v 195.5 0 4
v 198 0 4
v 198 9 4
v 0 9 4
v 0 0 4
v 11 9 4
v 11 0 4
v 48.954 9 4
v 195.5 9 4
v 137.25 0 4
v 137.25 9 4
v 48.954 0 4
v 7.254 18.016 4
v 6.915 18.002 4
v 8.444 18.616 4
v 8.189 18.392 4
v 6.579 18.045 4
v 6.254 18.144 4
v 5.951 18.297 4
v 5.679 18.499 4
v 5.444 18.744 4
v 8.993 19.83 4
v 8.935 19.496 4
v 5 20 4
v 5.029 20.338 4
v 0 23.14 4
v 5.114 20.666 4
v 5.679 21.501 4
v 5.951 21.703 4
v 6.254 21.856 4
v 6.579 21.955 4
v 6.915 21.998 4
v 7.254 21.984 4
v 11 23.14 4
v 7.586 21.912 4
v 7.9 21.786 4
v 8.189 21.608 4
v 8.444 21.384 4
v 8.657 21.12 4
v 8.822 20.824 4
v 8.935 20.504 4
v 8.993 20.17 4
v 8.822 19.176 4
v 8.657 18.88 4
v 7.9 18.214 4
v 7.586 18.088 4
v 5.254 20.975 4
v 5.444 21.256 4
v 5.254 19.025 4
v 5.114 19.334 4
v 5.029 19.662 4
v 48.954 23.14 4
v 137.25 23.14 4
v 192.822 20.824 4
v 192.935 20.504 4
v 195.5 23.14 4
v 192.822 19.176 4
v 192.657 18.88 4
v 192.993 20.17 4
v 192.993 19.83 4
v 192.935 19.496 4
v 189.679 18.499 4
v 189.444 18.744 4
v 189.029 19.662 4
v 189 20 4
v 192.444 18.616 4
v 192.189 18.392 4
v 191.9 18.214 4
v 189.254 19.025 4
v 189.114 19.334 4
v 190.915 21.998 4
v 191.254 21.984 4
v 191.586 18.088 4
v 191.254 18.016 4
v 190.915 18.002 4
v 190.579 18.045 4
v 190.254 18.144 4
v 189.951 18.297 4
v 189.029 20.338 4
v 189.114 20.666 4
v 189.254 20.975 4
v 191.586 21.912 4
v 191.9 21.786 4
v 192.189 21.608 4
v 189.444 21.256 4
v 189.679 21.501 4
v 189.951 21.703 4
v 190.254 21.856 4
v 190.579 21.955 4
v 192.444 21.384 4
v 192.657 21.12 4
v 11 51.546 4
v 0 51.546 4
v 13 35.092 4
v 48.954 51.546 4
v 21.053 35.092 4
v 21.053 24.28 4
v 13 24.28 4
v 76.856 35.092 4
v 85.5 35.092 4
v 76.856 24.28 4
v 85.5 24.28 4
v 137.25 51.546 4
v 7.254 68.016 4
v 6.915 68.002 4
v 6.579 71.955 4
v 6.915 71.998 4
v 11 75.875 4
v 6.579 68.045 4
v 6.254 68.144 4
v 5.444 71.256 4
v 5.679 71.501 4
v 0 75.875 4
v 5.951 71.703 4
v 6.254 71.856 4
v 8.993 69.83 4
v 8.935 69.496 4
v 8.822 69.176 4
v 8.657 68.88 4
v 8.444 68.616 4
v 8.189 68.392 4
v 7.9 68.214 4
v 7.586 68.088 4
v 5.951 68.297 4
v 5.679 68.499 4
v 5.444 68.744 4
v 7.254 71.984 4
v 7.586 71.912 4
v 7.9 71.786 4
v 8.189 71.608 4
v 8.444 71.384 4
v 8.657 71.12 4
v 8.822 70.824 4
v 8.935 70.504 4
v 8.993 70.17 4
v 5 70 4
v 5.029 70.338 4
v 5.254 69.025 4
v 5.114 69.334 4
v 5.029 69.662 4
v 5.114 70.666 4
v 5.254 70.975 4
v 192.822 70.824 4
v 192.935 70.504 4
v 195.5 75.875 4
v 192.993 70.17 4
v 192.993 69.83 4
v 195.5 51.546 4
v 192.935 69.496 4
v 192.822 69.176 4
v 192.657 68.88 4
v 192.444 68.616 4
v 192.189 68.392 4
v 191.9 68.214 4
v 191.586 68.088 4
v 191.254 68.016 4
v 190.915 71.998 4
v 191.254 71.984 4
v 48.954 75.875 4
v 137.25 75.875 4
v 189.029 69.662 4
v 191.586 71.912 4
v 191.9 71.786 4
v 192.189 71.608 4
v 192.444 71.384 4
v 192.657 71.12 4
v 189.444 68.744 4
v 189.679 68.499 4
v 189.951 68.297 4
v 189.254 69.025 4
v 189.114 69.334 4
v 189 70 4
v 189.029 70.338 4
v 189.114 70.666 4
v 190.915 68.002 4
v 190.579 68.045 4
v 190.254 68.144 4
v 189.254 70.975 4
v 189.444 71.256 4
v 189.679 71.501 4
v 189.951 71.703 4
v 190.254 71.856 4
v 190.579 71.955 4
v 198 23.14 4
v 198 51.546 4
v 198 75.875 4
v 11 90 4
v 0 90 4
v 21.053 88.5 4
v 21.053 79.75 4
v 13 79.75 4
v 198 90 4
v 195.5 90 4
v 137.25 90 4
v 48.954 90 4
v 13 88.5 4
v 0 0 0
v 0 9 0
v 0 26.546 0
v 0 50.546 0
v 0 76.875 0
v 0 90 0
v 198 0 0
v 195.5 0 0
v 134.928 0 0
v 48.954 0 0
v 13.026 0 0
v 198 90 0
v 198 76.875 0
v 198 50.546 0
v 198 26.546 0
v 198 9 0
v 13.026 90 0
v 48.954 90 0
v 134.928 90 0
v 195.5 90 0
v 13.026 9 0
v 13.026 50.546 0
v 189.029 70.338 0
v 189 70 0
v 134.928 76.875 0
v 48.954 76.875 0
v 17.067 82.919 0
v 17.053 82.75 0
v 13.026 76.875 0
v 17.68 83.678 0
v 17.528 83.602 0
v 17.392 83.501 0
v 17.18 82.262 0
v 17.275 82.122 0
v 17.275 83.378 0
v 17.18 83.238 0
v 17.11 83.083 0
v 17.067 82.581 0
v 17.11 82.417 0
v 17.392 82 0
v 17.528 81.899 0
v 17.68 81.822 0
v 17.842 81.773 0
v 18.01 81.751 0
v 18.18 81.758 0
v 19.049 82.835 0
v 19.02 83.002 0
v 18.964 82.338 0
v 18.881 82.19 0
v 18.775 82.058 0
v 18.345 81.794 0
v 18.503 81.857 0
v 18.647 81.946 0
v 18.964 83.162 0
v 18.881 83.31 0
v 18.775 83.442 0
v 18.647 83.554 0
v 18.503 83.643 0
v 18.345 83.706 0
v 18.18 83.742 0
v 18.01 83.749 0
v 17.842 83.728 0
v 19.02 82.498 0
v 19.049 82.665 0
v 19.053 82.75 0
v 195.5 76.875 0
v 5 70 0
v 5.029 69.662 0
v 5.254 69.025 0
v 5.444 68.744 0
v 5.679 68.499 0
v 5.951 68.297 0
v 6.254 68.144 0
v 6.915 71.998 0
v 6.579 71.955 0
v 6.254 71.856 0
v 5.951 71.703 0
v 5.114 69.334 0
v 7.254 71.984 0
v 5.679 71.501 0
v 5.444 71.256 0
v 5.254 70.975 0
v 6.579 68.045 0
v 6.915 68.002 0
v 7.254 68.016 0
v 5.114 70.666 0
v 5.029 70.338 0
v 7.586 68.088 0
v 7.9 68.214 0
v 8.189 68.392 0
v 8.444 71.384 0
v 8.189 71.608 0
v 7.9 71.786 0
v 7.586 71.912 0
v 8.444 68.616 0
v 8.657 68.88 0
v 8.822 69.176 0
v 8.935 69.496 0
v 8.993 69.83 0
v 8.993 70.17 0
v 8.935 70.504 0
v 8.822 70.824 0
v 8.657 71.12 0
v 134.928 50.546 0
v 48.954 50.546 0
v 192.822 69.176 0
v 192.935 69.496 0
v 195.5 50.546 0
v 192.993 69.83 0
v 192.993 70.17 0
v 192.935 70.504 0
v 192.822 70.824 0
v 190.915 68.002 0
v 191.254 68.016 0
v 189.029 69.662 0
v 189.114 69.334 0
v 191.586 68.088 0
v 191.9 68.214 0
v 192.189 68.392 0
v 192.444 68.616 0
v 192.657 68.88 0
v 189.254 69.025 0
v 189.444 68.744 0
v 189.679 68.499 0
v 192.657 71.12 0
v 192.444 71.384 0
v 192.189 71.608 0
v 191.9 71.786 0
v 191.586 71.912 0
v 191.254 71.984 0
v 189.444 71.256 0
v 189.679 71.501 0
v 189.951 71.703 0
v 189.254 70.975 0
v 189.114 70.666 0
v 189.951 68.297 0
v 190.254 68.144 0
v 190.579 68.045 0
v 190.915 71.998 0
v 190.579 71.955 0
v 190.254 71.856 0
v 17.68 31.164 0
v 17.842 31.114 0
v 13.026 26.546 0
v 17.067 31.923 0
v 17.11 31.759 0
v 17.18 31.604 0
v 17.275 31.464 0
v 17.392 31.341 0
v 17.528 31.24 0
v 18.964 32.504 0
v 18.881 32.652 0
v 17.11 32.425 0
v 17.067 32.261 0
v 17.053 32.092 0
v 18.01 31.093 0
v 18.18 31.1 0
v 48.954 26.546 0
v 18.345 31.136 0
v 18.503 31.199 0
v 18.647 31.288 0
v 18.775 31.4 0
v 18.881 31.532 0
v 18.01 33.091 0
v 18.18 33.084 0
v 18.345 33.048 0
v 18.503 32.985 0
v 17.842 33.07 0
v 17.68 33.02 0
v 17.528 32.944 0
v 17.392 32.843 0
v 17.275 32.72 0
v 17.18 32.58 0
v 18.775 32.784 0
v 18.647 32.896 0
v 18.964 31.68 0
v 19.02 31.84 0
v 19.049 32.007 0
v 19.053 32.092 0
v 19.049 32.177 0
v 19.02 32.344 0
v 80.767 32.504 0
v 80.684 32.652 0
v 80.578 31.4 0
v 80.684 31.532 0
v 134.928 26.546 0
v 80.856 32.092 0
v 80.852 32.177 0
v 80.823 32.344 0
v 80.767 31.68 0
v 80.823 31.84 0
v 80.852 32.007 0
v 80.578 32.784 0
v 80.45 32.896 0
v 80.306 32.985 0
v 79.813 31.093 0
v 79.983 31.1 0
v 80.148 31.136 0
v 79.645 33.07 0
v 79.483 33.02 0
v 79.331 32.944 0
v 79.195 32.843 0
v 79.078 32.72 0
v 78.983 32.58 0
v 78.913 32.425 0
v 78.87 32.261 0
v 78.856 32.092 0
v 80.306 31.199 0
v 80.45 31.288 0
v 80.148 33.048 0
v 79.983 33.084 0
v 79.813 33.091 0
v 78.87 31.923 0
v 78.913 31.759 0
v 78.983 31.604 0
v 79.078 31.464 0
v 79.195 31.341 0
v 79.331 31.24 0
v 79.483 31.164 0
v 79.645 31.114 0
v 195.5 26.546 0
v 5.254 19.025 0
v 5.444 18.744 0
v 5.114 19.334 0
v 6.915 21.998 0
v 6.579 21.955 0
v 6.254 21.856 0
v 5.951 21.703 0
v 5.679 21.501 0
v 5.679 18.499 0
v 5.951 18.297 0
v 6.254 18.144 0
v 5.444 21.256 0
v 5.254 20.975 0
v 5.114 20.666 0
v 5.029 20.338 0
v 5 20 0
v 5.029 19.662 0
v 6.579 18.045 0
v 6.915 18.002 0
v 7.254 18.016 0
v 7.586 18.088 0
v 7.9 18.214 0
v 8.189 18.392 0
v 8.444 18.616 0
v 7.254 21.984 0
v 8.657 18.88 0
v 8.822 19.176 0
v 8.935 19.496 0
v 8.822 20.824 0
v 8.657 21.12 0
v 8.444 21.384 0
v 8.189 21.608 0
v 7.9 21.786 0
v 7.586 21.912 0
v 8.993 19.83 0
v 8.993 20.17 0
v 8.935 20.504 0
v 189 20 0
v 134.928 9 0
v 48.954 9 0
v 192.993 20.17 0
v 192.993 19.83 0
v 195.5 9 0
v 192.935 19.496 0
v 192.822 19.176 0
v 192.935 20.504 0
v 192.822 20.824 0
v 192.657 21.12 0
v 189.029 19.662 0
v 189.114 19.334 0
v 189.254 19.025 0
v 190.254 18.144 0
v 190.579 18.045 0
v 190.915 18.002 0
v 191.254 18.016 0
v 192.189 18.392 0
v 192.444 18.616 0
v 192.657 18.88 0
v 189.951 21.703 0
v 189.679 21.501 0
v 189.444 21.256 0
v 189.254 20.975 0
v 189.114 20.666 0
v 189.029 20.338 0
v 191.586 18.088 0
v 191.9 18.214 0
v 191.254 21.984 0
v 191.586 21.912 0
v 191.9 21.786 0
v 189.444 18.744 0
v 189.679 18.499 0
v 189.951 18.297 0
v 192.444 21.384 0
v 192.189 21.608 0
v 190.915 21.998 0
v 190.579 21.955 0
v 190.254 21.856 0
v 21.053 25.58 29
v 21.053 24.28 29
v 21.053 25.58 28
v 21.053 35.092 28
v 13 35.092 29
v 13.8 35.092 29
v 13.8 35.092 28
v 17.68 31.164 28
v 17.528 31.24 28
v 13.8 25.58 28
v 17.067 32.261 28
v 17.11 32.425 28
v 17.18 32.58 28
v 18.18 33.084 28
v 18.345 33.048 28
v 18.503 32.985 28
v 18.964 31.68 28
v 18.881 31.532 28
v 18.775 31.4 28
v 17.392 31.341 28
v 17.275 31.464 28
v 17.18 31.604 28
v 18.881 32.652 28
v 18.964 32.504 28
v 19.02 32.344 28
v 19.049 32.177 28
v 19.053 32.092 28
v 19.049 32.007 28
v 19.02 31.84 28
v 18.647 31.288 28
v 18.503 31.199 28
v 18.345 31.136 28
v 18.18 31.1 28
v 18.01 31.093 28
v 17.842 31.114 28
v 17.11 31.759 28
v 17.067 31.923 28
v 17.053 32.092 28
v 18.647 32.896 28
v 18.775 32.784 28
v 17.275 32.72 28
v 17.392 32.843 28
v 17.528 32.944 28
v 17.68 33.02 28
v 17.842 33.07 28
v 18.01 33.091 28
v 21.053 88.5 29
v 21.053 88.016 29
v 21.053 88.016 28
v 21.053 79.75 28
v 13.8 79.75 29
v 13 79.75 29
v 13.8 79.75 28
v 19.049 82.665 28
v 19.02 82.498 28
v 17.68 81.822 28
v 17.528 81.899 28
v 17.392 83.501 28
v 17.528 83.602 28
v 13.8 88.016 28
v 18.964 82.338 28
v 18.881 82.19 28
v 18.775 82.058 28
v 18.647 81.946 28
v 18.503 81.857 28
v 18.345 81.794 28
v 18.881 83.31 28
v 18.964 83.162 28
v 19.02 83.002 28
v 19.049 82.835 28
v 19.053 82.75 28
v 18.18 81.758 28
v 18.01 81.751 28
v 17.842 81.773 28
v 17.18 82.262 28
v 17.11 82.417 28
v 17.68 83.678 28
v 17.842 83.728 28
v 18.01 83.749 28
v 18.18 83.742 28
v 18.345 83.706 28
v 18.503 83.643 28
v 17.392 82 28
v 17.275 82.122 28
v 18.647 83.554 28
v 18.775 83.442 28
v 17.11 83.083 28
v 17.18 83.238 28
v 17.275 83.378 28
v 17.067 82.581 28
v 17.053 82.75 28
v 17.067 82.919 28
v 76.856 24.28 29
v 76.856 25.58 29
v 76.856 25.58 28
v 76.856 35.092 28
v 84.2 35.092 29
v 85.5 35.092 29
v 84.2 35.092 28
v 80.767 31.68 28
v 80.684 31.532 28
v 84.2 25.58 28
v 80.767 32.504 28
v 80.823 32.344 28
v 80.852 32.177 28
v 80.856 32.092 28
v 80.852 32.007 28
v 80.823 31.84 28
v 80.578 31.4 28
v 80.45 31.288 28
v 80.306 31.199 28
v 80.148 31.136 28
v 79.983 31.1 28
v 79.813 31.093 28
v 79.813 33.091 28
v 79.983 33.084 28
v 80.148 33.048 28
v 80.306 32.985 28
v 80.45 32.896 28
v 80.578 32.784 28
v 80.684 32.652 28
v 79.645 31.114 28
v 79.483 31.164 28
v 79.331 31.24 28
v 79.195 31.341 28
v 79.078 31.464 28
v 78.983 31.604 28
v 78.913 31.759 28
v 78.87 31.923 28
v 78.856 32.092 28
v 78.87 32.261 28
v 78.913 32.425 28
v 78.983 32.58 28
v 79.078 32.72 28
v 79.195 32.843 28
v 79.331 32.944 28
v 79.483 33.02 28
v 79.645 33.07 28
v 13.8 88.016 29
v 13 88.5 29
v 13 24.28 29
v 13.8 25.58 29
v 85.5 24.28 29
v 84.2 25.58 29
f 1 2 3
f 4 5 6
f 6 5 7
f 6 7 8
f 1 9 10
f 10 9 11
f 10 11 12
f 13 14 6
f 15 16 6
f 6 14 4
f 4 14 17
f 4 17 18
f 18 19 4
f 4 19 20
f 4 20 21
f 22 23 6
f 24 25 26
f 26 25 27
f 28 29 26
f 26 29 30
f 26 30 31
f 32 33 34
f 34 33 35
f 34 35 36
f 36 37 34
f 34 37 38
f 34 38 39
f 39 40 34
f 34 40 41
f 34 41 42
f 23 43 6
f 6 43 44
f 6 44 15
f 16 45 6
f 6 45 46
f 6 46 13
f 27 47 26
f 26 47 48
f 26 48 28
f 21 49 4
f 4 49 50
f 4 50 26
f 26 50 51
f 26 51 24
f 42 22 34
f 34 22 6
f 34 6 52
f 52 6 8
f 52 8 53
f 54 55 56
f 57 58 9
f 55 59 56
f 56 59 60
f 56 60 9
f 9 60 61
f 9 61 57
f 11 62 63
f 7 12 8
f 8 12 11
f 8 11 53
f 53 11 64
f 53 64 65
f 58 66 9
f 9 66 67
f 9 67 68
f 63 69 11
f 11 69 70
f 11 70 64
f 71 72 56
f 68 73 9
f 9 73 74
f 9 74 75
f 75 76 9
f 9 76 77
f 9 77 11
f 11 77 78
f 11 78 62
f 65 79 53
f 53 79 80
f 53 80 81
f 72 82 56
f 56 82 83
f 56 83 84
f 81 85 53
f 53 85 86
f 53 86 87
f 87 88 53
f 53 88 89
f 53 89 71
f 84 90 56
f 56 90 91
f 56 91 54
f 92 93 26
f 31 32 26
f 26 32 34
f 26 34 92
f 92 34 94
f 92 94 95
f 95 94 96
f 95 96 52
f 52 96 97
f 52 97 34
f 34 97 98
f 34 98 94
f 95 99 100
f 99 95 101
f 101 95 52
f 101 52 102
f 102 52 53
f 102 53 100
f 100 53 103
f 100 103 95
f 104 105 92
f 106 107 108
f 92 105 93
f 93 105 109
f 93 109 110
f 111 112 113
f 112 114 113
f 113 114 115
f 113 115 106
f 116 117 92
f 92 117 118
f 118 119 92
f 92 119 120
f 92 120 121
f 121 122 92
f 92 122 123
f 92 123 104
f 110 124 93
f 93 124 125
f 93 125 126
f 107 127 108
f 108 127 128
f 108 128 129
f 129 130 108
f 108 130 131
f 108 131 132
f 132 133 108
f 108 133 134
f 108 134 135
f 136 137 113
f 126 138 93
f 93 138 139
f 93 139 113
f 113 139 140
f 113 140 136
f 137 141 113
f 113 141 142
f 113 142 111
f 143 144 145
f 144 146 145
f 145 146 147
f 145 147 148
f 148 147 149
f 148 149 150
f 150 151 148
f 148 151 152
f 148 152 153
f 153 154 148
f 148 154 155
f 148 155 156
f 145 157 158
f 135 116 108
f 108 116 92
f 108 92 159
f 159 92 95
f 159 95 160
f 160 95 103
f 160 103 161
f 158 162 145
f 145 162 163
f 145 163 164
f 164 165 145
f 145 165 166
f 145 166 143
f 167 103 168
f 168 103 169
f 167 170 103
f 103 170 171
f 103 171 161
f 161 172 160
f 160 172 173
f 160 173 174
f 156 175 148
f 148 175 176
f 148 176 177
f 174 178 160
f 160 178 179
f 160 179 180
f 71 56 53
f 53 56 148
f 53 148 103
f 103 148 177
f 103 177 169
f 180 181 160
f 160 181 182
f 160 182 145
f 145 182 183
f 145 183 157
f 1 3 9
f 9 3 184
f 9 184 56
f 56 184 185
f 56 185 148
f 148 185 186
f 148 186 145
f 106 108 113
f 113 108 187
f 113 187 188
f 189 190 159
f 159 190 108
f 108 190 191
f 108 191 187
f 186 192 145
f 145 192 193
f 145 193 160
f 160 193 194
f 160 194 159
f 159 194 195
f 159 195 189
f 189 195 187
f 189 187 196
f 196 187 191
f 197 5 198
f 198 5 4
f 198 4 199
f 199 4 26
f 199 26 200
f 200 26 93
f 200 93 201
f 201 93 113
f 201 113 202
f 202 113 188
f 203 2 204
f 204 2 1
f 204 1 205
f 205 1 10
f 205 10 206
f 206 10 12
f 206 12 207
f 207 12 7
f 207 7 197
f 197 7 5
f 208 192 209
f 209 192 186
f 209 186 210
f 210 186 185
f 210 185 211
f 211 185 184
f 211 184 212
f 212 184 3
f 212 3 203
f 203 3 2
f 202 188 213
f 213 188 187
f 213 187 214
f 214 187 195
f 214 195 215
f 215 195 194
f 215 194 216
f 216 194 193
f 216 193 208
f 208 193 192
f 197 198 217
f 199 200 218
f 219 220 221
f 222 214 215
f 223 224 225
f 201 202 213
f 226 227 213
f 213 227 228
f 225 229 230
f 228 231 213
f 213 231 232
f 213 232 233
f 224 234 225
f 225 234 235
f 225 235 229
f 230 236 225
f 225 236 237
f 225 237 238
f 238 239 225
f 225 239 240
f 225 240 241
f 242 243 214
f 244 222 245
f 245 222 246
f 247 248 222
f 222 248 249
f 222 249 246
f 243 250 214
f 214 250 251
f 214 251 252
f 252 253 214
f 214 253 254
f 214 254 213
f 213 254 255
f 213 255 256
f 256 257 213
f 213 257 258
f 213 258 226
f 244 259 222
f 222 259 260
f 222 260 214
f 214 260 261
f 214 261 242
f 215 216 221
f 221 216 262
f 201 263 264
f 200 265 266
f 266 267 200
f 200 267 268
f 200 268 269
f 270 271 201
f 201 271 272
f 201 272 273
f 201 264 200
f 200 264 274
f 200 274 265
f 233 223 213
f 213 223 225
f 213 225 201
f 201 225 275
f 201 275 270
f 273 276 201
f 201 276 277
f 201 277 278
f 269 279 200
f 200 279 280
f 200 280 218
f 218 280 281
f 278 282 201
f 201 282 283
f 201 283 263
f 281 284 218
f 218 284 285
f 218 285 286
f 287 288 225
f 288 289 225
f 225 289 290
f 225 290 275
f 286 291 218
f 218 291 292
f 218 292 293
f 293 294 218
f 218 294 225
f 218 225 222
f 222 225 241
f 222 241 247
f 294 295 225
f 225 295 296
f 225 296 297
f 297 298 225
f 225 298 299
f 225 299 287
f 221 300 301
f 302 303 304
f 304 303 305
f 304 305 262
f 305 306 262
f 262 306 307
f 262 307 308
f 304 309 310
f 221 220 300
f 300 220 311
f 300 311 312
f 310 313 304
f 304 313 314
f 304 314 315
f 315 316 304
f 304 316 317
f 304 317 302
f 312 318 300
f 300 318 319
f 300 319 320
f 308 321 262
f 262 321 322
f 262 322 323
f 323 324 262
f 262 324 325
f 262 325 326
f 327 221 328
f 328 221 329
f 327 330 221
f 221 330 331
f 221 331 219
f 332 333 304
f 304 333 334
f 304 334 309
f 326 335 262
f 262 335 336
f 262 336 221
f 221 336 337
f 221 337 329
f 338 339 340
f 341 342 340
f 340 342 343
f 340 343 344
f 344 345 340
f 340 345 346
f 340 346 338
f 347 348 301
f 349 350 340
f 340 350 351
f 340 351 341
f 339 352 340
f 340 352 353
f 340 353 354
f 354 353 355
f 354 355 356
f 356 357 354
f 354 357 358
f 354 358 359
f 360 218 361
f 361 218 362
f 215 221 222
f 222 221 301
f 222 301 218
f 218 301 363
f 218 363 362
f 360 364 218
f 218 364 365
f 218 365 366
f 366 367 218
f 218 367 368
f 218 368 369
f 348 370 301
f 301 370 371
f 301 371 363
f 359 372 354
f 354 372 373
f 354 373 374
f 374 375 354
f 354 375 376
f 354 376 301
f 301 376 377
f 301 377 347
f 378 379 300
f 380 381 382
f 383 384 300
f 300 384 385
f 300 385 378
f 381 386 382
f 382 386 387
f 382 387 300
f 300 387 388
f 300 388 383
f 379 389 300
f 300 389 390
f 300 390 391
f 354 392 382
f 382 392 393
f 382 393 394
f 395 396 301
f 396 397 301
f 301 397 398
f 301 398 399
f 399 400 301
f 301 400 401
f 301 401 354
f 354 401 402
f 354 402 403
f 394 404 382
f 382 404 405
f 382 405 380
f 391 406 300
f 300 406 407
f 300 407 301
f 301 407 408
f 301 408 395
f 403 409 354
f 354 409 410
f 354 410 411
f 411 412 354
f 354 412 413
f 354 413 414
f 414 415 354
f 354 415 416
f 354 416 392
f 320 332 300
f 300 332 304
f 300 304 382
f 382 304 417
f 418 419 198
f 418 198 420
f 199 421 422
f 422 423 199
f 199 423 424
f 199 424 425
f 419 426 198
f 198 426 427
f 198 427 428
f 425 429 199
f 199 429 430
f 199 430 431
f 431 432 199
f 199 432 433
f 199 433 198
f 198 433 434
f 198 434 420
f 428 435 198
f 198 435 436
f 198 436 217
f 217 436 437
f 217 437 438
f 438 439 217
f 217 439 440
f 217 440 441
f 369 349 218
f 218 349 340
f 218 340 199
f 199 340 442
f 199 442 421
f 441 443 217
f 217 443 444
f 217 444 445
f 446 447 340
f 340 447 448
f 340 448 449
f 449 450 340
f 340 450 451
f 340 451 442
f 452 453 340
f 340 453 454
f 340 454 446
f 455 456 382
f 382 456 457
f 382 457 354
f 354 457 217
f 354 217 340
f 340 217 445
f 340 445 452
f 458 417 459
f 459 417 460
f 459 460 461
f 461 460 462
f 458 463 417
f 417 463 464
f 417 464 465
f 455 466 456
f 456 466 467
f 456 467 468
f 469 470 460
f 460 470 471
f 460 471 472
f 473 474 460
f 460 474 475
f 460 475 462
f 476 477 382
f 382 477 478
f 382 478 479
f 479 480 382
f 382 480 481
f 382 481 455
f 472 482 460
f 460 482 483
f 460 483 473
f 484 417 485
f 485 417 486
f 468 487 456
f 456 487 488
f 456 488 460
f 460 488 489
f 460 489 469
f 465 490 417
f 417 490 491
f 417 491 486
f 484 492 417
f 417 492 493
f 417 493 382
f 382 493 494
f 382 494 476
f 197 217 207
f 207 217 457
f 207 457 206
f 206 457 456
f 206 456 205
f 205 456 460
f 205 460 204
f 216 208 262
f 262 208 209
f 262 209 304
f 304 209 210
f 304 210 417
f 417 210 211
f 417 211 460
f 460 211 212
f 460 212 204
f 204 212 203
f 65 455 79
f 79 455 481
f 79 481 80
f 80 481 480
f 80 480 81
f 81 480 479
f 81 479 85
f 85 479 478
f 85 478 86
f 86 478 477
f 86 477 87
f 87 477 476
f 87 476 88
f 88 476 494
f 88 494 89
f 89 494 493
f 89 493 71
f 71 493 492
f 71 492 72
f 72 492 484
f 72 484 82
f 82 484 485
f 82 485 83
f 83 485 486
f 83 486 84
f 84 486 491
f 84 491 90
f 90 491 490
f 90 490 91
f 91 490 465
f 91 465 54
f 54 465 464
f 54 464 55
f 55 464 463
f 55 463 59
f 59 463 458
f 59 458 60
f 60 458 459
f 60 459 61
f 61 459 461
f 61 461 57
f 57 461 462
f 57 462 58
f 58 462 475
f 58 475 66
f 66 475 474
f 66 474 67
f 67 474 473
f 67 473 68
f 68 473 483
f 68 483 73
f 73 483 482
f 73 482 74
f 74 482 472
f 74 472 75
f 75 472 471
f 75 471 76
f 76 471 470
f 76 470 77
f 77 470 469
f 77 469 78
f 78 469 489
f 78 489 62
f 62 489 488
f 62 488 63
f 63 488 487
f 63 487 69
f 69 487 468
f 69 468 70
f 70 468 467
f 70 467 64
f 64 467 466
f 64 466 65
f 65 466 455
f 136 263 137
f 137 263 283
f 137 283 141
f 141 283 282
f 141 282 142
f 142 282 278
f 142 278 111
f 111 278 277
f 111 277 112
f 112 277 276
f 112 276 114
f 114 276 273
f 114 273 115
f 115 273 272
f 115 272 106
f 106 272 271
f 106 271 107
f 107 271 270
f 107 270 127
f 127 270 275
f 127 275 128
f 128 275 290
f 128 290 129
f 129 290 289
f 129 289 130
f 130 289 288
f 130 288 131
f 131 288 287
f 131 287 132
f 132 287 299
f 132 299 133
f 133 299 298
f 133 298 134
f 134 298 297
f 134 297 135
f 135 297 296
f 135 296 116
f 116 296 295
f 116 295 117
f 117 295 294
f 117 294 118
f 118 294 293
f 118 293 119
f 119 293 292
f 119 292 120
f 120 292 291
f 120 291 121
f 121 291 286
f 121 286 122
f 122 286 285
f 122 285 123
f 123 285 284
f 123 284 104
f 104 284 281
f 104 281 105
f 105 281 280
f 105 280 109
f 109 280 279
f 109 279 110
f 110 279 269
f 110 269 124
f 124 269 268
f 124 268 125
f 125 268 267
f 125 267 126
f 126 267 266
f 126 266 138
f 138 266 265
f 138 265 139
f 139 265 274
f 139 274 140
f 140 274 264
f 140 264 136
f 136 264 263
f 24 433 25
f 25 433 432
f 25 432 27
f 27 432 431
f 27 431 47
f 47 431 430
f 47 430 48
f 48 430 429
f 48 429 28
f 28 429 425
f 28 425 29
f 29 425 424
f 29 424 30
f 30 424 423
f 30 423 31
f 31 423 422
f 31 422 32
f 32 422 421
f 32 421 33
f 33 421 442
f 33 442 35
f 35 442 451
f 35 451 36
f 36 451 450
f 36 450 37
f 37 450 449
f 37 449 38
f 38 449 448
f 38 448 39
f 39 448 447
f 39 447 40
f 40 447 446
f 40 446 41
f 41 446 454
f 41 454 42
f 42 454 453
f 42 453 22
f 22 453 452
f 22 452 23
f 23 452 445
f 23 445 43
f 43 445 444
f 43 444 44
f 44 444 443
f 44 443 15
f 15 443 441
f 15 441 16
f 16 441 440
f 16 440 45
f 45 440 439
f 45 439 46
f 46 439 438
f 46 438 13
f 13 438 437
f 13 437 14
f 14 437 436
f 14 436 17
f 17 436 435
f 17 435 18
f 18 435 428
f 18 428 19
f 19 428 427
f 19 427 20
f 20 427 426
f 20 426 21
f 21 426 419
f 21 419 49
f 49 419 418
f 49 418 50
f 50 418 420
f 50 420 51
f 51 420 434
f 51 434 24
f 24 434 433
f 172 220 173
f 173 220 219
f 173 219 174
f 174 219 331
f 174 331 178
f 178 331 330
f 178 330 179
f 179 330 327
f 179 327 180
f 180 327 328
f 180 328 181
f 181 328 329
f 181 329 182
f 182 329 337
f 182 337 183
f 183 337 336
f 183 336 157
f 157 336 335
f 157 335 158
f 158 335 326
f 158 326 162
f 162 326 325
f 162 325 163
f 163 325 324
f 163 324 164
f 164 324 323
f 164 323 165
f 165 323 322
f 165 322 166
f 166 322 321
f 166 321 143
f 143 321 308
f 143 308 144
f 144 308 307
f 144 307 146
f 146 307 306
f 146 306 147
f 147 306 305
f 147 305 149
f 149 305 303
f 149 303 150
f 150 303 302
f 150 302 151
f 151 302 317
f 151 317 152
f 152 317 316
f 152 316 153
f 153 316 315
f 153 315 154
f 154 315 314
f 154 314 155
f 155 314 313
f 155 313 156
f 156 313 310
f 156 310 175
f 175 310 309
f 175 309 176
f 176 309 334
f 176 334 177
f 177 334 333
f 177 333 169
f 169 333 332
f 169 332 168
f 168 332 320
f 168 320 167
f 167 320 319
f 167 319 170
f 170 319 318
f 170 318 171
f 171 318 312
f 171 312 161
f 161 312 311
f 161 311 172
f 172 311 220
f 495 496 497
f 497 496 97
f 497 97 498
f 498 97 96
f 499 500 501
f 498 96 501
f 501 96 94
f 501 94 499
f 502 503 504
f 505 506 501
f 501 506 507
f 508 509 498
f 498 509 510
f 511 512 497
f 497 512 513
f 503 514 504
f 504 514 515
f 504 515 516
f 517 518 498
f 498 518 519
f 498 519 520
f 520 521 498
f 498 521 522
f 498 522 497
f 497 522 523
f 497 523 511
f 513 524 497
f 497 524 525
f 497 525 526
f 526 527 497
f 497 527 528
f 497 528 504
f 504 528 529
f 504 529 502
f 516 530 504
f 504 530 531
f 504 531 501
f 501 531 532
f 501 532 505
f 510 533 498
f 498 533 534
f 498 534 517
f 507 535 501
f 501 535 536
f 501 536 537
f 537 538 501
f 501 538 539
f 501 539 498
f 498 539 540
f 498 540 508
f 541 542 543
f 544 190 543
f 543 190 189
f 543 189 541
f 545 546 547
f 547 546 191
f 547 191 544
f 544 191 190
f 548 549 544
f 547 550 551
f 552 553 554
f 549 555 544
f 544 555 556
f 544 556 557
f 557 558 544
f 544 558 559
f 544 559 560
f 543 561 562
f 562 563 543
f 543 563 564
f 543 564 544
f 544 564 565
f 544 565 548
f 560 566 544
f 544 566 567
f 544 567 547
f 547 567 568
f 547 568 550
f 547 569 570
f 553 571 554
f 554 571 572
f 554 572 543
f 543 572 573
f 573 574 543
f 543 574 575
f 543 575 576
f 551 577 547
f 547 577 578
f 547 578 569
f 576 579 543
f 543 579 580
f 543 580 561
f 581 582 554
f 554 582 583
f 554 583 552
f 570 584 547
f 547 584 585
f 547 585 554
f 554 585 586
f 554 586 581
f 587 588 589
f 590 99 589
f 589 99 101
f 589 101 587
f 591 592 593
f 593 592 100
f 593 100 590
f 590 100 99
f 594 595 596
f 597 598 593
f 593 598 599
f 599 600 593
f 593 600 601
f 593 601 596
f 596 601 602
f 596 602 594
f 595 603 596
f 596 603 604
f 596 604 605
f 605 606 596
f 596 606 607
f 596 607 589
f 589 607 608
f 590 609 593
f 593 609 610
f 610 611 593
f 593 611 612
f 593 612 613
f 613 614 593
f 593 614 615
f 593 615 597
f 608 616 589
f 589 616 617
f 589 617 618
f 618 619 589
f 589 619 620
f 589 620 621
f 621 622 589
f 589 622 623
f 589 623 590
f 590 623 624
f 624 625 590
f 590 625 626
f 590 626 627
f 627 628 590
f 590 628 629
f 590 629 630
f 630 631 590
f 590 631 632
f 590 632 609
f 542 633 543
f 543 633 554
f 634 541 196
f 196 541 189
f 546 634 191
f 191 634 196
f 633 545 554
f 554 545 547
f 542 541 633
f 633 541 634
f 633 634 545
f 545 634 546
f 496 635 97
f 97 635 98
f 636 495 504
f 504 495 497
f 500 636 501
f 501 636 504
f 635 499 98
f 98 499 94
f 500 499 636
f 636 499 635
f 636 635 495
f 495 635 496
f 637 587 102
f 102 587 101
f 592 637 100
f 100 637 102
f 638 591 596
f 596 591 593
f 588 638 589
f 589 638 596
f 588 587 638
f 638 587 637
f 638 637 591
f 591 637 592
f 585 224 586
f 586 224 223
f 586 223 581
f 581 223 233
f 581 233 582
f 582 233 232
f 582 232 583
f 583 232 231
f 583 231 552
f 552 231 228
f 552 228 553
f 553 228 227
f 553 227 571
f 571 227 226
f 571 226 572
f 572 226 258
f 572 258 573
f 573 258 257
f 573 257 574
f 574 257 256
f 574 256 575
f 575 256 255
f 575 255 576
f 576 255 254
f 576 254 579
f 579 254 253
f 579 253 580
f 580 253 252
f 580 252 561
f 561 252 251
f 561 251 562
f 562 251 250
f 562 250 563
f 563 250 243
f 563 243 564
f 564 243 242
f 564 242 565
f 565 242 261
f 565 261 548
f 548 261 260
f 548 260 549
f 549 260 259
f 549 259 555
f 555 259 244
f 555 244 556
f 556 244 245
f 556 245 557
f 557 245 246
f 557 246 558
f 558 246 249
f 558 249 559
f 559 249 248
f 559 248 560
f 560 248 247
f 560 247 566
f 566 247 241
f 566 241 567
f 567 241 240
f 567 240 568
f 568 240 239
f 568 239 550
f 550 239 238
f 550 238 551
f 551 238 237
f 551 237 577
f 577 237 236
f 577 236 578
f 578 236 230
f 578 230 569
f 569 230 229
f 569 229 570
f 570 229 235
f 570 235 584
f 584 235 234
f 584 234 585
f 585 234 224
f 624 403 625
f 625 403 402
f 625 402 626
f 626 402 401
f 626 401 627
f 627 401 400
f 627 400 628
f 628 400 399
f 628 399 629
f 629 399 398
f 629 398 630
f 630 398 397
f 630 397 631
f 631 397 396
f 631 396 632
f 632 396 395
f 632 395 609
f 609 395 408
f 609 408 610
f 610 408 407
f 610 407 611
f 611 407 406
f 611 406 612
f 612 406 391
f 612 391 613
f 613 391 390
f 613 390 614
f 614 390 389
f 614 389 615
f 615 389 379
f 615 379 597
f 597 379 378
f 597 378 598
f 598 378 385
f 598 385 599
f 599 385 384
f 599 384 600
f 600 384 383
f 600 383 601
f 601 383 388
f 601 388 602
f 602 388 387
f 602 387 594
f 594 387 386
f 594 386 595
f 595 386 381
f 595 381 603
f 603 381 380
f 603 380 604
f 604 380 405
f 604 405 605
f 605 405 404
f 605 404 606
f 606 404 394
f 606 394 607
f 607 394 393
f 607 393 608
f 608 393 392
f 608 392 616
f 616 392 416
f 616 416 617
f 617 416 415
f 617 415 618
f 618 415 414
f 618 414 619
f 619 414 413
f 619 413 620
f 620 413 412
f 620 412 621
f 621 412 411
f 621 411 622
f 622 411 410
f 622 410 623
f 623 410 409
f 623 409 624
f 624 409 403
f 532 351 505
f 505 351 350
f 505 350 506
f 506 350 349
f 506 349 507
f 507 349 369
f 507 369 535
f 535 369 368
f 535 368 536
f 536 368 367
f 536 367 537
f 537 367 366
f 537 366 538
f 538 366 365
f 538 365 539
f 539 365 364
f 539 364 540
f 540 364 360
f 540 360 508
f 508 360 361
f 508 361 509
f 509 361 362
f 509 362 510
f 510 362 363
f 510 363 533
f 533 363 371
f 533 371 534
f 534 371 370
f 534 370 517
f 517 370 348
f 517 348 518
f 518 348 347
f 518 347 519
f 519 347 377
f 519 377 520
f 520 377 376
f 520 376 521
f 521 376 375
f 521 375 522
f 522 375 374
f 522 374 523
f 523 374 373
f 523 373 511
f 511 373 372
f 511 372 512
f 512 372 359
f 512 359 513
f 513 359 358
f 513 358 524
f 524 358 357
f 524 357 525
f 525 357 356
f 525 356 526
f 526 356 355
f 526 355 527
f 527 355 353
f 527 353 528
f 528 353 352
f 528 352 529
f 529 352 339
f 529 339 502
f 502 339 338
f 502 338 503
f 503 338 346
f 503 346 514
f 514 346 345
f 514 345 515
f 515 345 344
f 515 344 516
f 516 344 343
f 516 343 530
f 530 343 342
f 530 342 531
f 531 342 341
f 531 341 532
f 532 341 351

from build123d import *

# Parameters (mm, degrees)
SKETCH1_W               = 198
SKETCH1_H               = 90
BOSS_EXTRUDE1_DEPTH     = 4
SKETCH3_R               = 2
CUT_EXTRUDE1_DEPTH      = 10
SKETCH4_W               = 7.252652573
SKETCH4_H               = 8.265815716
SKETCH4_H_2             = 9.512006383
SKETCH4_W_2             = 7.344395692
BOSS_EXTRUDE3_DEPTH     = 24
BOSS_EXTRUDE4_DEPTH     = 25
CUT_EXTRUDE2_DEPTH      = 219.926928449
CUT_EXTRUDE2_DEPTH_BACK = 219.926928449
SKETCH4_5_R             = 1


with BuildPart() as part:
    # Sketch1 → Boss-Extrude1 (new body)
    with BuildSketch(Plane.XY):
        with Locations((99, 45)):
            Rectangle(SKETCH1_W, SKETCH1_H)
    extrude(amount=BOSS_EXTRUDE1_DEPTH)

    # Sketch3 → Cut-Extrude1 (cut)
    with BuildSketch(Plane(origin=(0, 0, 0), x_dir=(-1, 0, 0), z_dir=(0, 0, -1))):
        with Locations((-191, 20)):
            Circle(SKETCH3_R)
        with Locations((-191, 70)):
            Circle(SKETCH3_R)
        with Locations((-7, 20)):
            Circle(SKETCH3_R)
        with Locations((-7, 70)):
            Circle(SKETCH3_R)
    extrude(amount=-CUT_EXTRUDE1_DEPTH, mode=Mode.SUBTRACT)

    # Sketch4 → Boss-Extrude3 (add)
    with BuildSketch(Plane.XY.offset(4)):
        with Locations((17.426326287, 83.883092652)):
            Rectangle(SKETCH4_W, SKETCH4_H)
        with Locations((17.426326287, 30.336024443)):
            Rectangle(SKETCH4_W, SKETCH4_H_2)
        with Locations((80.527802154, 30.336024443)):
            Rectangle(SKETCH4_W_2, SKETCH4_H_2)
    extrude(amount=BOSS_EXTRUDE3_DEPTH)

    # Sketch4<4> → Boss-Extrude4 (add)
    with BuildSketch(Plane.XY.offset(4)):
        Polygon((13, 79.750184794), (13.8, 79.750184794), (13.8, 88.01600051), (21.052652573, 88.01600051), (21.052652573, 88.5), (13, 88.5), align=None)
        Polygon((13.8, 25.580021251), (13.8, 35.092027634), (13, 35.092027634), (13, 24.280021251), (21.052652573, 24.280021251), (21.052652573, 25.580021251), align=None)
        Polygon((85.5, 35.092027634), (84.2, 35.092027634), (84.2, 25.580021251), (76.855604308, 25.580021251), (76.855604308, 24.280021251), (85.5, 24.280021251), align=None)
    extrude(amount=BOSS_EXTRUDE4_DEPTH)

    # Sketch4<5> → Cut-Extrude2 (cut, two sides: drawn at the far end of the back side and taken through both)
    with BuildSketch(Plane.XY.offset(4).offset(-CUT_EXTRUDE2_DEPTH_BACK)):
        with Locations((79.855604308, 32.092027634)):
            Circle(SKETCH4_5_R)
        with Locations((18.052652573, 32.092027634)):
            Circle(SKETCH4_5_R)
        with Locations((18.052652573, 82.750184794)):
            Circle(SKETCH4_5_R)
    extrude(amount=CUT_EXTRUDE2_DEPTH + CUT_EXTRUDE2_DEPTH_BACK, mode=Mode.SUBTRACT)


solid = part.part
